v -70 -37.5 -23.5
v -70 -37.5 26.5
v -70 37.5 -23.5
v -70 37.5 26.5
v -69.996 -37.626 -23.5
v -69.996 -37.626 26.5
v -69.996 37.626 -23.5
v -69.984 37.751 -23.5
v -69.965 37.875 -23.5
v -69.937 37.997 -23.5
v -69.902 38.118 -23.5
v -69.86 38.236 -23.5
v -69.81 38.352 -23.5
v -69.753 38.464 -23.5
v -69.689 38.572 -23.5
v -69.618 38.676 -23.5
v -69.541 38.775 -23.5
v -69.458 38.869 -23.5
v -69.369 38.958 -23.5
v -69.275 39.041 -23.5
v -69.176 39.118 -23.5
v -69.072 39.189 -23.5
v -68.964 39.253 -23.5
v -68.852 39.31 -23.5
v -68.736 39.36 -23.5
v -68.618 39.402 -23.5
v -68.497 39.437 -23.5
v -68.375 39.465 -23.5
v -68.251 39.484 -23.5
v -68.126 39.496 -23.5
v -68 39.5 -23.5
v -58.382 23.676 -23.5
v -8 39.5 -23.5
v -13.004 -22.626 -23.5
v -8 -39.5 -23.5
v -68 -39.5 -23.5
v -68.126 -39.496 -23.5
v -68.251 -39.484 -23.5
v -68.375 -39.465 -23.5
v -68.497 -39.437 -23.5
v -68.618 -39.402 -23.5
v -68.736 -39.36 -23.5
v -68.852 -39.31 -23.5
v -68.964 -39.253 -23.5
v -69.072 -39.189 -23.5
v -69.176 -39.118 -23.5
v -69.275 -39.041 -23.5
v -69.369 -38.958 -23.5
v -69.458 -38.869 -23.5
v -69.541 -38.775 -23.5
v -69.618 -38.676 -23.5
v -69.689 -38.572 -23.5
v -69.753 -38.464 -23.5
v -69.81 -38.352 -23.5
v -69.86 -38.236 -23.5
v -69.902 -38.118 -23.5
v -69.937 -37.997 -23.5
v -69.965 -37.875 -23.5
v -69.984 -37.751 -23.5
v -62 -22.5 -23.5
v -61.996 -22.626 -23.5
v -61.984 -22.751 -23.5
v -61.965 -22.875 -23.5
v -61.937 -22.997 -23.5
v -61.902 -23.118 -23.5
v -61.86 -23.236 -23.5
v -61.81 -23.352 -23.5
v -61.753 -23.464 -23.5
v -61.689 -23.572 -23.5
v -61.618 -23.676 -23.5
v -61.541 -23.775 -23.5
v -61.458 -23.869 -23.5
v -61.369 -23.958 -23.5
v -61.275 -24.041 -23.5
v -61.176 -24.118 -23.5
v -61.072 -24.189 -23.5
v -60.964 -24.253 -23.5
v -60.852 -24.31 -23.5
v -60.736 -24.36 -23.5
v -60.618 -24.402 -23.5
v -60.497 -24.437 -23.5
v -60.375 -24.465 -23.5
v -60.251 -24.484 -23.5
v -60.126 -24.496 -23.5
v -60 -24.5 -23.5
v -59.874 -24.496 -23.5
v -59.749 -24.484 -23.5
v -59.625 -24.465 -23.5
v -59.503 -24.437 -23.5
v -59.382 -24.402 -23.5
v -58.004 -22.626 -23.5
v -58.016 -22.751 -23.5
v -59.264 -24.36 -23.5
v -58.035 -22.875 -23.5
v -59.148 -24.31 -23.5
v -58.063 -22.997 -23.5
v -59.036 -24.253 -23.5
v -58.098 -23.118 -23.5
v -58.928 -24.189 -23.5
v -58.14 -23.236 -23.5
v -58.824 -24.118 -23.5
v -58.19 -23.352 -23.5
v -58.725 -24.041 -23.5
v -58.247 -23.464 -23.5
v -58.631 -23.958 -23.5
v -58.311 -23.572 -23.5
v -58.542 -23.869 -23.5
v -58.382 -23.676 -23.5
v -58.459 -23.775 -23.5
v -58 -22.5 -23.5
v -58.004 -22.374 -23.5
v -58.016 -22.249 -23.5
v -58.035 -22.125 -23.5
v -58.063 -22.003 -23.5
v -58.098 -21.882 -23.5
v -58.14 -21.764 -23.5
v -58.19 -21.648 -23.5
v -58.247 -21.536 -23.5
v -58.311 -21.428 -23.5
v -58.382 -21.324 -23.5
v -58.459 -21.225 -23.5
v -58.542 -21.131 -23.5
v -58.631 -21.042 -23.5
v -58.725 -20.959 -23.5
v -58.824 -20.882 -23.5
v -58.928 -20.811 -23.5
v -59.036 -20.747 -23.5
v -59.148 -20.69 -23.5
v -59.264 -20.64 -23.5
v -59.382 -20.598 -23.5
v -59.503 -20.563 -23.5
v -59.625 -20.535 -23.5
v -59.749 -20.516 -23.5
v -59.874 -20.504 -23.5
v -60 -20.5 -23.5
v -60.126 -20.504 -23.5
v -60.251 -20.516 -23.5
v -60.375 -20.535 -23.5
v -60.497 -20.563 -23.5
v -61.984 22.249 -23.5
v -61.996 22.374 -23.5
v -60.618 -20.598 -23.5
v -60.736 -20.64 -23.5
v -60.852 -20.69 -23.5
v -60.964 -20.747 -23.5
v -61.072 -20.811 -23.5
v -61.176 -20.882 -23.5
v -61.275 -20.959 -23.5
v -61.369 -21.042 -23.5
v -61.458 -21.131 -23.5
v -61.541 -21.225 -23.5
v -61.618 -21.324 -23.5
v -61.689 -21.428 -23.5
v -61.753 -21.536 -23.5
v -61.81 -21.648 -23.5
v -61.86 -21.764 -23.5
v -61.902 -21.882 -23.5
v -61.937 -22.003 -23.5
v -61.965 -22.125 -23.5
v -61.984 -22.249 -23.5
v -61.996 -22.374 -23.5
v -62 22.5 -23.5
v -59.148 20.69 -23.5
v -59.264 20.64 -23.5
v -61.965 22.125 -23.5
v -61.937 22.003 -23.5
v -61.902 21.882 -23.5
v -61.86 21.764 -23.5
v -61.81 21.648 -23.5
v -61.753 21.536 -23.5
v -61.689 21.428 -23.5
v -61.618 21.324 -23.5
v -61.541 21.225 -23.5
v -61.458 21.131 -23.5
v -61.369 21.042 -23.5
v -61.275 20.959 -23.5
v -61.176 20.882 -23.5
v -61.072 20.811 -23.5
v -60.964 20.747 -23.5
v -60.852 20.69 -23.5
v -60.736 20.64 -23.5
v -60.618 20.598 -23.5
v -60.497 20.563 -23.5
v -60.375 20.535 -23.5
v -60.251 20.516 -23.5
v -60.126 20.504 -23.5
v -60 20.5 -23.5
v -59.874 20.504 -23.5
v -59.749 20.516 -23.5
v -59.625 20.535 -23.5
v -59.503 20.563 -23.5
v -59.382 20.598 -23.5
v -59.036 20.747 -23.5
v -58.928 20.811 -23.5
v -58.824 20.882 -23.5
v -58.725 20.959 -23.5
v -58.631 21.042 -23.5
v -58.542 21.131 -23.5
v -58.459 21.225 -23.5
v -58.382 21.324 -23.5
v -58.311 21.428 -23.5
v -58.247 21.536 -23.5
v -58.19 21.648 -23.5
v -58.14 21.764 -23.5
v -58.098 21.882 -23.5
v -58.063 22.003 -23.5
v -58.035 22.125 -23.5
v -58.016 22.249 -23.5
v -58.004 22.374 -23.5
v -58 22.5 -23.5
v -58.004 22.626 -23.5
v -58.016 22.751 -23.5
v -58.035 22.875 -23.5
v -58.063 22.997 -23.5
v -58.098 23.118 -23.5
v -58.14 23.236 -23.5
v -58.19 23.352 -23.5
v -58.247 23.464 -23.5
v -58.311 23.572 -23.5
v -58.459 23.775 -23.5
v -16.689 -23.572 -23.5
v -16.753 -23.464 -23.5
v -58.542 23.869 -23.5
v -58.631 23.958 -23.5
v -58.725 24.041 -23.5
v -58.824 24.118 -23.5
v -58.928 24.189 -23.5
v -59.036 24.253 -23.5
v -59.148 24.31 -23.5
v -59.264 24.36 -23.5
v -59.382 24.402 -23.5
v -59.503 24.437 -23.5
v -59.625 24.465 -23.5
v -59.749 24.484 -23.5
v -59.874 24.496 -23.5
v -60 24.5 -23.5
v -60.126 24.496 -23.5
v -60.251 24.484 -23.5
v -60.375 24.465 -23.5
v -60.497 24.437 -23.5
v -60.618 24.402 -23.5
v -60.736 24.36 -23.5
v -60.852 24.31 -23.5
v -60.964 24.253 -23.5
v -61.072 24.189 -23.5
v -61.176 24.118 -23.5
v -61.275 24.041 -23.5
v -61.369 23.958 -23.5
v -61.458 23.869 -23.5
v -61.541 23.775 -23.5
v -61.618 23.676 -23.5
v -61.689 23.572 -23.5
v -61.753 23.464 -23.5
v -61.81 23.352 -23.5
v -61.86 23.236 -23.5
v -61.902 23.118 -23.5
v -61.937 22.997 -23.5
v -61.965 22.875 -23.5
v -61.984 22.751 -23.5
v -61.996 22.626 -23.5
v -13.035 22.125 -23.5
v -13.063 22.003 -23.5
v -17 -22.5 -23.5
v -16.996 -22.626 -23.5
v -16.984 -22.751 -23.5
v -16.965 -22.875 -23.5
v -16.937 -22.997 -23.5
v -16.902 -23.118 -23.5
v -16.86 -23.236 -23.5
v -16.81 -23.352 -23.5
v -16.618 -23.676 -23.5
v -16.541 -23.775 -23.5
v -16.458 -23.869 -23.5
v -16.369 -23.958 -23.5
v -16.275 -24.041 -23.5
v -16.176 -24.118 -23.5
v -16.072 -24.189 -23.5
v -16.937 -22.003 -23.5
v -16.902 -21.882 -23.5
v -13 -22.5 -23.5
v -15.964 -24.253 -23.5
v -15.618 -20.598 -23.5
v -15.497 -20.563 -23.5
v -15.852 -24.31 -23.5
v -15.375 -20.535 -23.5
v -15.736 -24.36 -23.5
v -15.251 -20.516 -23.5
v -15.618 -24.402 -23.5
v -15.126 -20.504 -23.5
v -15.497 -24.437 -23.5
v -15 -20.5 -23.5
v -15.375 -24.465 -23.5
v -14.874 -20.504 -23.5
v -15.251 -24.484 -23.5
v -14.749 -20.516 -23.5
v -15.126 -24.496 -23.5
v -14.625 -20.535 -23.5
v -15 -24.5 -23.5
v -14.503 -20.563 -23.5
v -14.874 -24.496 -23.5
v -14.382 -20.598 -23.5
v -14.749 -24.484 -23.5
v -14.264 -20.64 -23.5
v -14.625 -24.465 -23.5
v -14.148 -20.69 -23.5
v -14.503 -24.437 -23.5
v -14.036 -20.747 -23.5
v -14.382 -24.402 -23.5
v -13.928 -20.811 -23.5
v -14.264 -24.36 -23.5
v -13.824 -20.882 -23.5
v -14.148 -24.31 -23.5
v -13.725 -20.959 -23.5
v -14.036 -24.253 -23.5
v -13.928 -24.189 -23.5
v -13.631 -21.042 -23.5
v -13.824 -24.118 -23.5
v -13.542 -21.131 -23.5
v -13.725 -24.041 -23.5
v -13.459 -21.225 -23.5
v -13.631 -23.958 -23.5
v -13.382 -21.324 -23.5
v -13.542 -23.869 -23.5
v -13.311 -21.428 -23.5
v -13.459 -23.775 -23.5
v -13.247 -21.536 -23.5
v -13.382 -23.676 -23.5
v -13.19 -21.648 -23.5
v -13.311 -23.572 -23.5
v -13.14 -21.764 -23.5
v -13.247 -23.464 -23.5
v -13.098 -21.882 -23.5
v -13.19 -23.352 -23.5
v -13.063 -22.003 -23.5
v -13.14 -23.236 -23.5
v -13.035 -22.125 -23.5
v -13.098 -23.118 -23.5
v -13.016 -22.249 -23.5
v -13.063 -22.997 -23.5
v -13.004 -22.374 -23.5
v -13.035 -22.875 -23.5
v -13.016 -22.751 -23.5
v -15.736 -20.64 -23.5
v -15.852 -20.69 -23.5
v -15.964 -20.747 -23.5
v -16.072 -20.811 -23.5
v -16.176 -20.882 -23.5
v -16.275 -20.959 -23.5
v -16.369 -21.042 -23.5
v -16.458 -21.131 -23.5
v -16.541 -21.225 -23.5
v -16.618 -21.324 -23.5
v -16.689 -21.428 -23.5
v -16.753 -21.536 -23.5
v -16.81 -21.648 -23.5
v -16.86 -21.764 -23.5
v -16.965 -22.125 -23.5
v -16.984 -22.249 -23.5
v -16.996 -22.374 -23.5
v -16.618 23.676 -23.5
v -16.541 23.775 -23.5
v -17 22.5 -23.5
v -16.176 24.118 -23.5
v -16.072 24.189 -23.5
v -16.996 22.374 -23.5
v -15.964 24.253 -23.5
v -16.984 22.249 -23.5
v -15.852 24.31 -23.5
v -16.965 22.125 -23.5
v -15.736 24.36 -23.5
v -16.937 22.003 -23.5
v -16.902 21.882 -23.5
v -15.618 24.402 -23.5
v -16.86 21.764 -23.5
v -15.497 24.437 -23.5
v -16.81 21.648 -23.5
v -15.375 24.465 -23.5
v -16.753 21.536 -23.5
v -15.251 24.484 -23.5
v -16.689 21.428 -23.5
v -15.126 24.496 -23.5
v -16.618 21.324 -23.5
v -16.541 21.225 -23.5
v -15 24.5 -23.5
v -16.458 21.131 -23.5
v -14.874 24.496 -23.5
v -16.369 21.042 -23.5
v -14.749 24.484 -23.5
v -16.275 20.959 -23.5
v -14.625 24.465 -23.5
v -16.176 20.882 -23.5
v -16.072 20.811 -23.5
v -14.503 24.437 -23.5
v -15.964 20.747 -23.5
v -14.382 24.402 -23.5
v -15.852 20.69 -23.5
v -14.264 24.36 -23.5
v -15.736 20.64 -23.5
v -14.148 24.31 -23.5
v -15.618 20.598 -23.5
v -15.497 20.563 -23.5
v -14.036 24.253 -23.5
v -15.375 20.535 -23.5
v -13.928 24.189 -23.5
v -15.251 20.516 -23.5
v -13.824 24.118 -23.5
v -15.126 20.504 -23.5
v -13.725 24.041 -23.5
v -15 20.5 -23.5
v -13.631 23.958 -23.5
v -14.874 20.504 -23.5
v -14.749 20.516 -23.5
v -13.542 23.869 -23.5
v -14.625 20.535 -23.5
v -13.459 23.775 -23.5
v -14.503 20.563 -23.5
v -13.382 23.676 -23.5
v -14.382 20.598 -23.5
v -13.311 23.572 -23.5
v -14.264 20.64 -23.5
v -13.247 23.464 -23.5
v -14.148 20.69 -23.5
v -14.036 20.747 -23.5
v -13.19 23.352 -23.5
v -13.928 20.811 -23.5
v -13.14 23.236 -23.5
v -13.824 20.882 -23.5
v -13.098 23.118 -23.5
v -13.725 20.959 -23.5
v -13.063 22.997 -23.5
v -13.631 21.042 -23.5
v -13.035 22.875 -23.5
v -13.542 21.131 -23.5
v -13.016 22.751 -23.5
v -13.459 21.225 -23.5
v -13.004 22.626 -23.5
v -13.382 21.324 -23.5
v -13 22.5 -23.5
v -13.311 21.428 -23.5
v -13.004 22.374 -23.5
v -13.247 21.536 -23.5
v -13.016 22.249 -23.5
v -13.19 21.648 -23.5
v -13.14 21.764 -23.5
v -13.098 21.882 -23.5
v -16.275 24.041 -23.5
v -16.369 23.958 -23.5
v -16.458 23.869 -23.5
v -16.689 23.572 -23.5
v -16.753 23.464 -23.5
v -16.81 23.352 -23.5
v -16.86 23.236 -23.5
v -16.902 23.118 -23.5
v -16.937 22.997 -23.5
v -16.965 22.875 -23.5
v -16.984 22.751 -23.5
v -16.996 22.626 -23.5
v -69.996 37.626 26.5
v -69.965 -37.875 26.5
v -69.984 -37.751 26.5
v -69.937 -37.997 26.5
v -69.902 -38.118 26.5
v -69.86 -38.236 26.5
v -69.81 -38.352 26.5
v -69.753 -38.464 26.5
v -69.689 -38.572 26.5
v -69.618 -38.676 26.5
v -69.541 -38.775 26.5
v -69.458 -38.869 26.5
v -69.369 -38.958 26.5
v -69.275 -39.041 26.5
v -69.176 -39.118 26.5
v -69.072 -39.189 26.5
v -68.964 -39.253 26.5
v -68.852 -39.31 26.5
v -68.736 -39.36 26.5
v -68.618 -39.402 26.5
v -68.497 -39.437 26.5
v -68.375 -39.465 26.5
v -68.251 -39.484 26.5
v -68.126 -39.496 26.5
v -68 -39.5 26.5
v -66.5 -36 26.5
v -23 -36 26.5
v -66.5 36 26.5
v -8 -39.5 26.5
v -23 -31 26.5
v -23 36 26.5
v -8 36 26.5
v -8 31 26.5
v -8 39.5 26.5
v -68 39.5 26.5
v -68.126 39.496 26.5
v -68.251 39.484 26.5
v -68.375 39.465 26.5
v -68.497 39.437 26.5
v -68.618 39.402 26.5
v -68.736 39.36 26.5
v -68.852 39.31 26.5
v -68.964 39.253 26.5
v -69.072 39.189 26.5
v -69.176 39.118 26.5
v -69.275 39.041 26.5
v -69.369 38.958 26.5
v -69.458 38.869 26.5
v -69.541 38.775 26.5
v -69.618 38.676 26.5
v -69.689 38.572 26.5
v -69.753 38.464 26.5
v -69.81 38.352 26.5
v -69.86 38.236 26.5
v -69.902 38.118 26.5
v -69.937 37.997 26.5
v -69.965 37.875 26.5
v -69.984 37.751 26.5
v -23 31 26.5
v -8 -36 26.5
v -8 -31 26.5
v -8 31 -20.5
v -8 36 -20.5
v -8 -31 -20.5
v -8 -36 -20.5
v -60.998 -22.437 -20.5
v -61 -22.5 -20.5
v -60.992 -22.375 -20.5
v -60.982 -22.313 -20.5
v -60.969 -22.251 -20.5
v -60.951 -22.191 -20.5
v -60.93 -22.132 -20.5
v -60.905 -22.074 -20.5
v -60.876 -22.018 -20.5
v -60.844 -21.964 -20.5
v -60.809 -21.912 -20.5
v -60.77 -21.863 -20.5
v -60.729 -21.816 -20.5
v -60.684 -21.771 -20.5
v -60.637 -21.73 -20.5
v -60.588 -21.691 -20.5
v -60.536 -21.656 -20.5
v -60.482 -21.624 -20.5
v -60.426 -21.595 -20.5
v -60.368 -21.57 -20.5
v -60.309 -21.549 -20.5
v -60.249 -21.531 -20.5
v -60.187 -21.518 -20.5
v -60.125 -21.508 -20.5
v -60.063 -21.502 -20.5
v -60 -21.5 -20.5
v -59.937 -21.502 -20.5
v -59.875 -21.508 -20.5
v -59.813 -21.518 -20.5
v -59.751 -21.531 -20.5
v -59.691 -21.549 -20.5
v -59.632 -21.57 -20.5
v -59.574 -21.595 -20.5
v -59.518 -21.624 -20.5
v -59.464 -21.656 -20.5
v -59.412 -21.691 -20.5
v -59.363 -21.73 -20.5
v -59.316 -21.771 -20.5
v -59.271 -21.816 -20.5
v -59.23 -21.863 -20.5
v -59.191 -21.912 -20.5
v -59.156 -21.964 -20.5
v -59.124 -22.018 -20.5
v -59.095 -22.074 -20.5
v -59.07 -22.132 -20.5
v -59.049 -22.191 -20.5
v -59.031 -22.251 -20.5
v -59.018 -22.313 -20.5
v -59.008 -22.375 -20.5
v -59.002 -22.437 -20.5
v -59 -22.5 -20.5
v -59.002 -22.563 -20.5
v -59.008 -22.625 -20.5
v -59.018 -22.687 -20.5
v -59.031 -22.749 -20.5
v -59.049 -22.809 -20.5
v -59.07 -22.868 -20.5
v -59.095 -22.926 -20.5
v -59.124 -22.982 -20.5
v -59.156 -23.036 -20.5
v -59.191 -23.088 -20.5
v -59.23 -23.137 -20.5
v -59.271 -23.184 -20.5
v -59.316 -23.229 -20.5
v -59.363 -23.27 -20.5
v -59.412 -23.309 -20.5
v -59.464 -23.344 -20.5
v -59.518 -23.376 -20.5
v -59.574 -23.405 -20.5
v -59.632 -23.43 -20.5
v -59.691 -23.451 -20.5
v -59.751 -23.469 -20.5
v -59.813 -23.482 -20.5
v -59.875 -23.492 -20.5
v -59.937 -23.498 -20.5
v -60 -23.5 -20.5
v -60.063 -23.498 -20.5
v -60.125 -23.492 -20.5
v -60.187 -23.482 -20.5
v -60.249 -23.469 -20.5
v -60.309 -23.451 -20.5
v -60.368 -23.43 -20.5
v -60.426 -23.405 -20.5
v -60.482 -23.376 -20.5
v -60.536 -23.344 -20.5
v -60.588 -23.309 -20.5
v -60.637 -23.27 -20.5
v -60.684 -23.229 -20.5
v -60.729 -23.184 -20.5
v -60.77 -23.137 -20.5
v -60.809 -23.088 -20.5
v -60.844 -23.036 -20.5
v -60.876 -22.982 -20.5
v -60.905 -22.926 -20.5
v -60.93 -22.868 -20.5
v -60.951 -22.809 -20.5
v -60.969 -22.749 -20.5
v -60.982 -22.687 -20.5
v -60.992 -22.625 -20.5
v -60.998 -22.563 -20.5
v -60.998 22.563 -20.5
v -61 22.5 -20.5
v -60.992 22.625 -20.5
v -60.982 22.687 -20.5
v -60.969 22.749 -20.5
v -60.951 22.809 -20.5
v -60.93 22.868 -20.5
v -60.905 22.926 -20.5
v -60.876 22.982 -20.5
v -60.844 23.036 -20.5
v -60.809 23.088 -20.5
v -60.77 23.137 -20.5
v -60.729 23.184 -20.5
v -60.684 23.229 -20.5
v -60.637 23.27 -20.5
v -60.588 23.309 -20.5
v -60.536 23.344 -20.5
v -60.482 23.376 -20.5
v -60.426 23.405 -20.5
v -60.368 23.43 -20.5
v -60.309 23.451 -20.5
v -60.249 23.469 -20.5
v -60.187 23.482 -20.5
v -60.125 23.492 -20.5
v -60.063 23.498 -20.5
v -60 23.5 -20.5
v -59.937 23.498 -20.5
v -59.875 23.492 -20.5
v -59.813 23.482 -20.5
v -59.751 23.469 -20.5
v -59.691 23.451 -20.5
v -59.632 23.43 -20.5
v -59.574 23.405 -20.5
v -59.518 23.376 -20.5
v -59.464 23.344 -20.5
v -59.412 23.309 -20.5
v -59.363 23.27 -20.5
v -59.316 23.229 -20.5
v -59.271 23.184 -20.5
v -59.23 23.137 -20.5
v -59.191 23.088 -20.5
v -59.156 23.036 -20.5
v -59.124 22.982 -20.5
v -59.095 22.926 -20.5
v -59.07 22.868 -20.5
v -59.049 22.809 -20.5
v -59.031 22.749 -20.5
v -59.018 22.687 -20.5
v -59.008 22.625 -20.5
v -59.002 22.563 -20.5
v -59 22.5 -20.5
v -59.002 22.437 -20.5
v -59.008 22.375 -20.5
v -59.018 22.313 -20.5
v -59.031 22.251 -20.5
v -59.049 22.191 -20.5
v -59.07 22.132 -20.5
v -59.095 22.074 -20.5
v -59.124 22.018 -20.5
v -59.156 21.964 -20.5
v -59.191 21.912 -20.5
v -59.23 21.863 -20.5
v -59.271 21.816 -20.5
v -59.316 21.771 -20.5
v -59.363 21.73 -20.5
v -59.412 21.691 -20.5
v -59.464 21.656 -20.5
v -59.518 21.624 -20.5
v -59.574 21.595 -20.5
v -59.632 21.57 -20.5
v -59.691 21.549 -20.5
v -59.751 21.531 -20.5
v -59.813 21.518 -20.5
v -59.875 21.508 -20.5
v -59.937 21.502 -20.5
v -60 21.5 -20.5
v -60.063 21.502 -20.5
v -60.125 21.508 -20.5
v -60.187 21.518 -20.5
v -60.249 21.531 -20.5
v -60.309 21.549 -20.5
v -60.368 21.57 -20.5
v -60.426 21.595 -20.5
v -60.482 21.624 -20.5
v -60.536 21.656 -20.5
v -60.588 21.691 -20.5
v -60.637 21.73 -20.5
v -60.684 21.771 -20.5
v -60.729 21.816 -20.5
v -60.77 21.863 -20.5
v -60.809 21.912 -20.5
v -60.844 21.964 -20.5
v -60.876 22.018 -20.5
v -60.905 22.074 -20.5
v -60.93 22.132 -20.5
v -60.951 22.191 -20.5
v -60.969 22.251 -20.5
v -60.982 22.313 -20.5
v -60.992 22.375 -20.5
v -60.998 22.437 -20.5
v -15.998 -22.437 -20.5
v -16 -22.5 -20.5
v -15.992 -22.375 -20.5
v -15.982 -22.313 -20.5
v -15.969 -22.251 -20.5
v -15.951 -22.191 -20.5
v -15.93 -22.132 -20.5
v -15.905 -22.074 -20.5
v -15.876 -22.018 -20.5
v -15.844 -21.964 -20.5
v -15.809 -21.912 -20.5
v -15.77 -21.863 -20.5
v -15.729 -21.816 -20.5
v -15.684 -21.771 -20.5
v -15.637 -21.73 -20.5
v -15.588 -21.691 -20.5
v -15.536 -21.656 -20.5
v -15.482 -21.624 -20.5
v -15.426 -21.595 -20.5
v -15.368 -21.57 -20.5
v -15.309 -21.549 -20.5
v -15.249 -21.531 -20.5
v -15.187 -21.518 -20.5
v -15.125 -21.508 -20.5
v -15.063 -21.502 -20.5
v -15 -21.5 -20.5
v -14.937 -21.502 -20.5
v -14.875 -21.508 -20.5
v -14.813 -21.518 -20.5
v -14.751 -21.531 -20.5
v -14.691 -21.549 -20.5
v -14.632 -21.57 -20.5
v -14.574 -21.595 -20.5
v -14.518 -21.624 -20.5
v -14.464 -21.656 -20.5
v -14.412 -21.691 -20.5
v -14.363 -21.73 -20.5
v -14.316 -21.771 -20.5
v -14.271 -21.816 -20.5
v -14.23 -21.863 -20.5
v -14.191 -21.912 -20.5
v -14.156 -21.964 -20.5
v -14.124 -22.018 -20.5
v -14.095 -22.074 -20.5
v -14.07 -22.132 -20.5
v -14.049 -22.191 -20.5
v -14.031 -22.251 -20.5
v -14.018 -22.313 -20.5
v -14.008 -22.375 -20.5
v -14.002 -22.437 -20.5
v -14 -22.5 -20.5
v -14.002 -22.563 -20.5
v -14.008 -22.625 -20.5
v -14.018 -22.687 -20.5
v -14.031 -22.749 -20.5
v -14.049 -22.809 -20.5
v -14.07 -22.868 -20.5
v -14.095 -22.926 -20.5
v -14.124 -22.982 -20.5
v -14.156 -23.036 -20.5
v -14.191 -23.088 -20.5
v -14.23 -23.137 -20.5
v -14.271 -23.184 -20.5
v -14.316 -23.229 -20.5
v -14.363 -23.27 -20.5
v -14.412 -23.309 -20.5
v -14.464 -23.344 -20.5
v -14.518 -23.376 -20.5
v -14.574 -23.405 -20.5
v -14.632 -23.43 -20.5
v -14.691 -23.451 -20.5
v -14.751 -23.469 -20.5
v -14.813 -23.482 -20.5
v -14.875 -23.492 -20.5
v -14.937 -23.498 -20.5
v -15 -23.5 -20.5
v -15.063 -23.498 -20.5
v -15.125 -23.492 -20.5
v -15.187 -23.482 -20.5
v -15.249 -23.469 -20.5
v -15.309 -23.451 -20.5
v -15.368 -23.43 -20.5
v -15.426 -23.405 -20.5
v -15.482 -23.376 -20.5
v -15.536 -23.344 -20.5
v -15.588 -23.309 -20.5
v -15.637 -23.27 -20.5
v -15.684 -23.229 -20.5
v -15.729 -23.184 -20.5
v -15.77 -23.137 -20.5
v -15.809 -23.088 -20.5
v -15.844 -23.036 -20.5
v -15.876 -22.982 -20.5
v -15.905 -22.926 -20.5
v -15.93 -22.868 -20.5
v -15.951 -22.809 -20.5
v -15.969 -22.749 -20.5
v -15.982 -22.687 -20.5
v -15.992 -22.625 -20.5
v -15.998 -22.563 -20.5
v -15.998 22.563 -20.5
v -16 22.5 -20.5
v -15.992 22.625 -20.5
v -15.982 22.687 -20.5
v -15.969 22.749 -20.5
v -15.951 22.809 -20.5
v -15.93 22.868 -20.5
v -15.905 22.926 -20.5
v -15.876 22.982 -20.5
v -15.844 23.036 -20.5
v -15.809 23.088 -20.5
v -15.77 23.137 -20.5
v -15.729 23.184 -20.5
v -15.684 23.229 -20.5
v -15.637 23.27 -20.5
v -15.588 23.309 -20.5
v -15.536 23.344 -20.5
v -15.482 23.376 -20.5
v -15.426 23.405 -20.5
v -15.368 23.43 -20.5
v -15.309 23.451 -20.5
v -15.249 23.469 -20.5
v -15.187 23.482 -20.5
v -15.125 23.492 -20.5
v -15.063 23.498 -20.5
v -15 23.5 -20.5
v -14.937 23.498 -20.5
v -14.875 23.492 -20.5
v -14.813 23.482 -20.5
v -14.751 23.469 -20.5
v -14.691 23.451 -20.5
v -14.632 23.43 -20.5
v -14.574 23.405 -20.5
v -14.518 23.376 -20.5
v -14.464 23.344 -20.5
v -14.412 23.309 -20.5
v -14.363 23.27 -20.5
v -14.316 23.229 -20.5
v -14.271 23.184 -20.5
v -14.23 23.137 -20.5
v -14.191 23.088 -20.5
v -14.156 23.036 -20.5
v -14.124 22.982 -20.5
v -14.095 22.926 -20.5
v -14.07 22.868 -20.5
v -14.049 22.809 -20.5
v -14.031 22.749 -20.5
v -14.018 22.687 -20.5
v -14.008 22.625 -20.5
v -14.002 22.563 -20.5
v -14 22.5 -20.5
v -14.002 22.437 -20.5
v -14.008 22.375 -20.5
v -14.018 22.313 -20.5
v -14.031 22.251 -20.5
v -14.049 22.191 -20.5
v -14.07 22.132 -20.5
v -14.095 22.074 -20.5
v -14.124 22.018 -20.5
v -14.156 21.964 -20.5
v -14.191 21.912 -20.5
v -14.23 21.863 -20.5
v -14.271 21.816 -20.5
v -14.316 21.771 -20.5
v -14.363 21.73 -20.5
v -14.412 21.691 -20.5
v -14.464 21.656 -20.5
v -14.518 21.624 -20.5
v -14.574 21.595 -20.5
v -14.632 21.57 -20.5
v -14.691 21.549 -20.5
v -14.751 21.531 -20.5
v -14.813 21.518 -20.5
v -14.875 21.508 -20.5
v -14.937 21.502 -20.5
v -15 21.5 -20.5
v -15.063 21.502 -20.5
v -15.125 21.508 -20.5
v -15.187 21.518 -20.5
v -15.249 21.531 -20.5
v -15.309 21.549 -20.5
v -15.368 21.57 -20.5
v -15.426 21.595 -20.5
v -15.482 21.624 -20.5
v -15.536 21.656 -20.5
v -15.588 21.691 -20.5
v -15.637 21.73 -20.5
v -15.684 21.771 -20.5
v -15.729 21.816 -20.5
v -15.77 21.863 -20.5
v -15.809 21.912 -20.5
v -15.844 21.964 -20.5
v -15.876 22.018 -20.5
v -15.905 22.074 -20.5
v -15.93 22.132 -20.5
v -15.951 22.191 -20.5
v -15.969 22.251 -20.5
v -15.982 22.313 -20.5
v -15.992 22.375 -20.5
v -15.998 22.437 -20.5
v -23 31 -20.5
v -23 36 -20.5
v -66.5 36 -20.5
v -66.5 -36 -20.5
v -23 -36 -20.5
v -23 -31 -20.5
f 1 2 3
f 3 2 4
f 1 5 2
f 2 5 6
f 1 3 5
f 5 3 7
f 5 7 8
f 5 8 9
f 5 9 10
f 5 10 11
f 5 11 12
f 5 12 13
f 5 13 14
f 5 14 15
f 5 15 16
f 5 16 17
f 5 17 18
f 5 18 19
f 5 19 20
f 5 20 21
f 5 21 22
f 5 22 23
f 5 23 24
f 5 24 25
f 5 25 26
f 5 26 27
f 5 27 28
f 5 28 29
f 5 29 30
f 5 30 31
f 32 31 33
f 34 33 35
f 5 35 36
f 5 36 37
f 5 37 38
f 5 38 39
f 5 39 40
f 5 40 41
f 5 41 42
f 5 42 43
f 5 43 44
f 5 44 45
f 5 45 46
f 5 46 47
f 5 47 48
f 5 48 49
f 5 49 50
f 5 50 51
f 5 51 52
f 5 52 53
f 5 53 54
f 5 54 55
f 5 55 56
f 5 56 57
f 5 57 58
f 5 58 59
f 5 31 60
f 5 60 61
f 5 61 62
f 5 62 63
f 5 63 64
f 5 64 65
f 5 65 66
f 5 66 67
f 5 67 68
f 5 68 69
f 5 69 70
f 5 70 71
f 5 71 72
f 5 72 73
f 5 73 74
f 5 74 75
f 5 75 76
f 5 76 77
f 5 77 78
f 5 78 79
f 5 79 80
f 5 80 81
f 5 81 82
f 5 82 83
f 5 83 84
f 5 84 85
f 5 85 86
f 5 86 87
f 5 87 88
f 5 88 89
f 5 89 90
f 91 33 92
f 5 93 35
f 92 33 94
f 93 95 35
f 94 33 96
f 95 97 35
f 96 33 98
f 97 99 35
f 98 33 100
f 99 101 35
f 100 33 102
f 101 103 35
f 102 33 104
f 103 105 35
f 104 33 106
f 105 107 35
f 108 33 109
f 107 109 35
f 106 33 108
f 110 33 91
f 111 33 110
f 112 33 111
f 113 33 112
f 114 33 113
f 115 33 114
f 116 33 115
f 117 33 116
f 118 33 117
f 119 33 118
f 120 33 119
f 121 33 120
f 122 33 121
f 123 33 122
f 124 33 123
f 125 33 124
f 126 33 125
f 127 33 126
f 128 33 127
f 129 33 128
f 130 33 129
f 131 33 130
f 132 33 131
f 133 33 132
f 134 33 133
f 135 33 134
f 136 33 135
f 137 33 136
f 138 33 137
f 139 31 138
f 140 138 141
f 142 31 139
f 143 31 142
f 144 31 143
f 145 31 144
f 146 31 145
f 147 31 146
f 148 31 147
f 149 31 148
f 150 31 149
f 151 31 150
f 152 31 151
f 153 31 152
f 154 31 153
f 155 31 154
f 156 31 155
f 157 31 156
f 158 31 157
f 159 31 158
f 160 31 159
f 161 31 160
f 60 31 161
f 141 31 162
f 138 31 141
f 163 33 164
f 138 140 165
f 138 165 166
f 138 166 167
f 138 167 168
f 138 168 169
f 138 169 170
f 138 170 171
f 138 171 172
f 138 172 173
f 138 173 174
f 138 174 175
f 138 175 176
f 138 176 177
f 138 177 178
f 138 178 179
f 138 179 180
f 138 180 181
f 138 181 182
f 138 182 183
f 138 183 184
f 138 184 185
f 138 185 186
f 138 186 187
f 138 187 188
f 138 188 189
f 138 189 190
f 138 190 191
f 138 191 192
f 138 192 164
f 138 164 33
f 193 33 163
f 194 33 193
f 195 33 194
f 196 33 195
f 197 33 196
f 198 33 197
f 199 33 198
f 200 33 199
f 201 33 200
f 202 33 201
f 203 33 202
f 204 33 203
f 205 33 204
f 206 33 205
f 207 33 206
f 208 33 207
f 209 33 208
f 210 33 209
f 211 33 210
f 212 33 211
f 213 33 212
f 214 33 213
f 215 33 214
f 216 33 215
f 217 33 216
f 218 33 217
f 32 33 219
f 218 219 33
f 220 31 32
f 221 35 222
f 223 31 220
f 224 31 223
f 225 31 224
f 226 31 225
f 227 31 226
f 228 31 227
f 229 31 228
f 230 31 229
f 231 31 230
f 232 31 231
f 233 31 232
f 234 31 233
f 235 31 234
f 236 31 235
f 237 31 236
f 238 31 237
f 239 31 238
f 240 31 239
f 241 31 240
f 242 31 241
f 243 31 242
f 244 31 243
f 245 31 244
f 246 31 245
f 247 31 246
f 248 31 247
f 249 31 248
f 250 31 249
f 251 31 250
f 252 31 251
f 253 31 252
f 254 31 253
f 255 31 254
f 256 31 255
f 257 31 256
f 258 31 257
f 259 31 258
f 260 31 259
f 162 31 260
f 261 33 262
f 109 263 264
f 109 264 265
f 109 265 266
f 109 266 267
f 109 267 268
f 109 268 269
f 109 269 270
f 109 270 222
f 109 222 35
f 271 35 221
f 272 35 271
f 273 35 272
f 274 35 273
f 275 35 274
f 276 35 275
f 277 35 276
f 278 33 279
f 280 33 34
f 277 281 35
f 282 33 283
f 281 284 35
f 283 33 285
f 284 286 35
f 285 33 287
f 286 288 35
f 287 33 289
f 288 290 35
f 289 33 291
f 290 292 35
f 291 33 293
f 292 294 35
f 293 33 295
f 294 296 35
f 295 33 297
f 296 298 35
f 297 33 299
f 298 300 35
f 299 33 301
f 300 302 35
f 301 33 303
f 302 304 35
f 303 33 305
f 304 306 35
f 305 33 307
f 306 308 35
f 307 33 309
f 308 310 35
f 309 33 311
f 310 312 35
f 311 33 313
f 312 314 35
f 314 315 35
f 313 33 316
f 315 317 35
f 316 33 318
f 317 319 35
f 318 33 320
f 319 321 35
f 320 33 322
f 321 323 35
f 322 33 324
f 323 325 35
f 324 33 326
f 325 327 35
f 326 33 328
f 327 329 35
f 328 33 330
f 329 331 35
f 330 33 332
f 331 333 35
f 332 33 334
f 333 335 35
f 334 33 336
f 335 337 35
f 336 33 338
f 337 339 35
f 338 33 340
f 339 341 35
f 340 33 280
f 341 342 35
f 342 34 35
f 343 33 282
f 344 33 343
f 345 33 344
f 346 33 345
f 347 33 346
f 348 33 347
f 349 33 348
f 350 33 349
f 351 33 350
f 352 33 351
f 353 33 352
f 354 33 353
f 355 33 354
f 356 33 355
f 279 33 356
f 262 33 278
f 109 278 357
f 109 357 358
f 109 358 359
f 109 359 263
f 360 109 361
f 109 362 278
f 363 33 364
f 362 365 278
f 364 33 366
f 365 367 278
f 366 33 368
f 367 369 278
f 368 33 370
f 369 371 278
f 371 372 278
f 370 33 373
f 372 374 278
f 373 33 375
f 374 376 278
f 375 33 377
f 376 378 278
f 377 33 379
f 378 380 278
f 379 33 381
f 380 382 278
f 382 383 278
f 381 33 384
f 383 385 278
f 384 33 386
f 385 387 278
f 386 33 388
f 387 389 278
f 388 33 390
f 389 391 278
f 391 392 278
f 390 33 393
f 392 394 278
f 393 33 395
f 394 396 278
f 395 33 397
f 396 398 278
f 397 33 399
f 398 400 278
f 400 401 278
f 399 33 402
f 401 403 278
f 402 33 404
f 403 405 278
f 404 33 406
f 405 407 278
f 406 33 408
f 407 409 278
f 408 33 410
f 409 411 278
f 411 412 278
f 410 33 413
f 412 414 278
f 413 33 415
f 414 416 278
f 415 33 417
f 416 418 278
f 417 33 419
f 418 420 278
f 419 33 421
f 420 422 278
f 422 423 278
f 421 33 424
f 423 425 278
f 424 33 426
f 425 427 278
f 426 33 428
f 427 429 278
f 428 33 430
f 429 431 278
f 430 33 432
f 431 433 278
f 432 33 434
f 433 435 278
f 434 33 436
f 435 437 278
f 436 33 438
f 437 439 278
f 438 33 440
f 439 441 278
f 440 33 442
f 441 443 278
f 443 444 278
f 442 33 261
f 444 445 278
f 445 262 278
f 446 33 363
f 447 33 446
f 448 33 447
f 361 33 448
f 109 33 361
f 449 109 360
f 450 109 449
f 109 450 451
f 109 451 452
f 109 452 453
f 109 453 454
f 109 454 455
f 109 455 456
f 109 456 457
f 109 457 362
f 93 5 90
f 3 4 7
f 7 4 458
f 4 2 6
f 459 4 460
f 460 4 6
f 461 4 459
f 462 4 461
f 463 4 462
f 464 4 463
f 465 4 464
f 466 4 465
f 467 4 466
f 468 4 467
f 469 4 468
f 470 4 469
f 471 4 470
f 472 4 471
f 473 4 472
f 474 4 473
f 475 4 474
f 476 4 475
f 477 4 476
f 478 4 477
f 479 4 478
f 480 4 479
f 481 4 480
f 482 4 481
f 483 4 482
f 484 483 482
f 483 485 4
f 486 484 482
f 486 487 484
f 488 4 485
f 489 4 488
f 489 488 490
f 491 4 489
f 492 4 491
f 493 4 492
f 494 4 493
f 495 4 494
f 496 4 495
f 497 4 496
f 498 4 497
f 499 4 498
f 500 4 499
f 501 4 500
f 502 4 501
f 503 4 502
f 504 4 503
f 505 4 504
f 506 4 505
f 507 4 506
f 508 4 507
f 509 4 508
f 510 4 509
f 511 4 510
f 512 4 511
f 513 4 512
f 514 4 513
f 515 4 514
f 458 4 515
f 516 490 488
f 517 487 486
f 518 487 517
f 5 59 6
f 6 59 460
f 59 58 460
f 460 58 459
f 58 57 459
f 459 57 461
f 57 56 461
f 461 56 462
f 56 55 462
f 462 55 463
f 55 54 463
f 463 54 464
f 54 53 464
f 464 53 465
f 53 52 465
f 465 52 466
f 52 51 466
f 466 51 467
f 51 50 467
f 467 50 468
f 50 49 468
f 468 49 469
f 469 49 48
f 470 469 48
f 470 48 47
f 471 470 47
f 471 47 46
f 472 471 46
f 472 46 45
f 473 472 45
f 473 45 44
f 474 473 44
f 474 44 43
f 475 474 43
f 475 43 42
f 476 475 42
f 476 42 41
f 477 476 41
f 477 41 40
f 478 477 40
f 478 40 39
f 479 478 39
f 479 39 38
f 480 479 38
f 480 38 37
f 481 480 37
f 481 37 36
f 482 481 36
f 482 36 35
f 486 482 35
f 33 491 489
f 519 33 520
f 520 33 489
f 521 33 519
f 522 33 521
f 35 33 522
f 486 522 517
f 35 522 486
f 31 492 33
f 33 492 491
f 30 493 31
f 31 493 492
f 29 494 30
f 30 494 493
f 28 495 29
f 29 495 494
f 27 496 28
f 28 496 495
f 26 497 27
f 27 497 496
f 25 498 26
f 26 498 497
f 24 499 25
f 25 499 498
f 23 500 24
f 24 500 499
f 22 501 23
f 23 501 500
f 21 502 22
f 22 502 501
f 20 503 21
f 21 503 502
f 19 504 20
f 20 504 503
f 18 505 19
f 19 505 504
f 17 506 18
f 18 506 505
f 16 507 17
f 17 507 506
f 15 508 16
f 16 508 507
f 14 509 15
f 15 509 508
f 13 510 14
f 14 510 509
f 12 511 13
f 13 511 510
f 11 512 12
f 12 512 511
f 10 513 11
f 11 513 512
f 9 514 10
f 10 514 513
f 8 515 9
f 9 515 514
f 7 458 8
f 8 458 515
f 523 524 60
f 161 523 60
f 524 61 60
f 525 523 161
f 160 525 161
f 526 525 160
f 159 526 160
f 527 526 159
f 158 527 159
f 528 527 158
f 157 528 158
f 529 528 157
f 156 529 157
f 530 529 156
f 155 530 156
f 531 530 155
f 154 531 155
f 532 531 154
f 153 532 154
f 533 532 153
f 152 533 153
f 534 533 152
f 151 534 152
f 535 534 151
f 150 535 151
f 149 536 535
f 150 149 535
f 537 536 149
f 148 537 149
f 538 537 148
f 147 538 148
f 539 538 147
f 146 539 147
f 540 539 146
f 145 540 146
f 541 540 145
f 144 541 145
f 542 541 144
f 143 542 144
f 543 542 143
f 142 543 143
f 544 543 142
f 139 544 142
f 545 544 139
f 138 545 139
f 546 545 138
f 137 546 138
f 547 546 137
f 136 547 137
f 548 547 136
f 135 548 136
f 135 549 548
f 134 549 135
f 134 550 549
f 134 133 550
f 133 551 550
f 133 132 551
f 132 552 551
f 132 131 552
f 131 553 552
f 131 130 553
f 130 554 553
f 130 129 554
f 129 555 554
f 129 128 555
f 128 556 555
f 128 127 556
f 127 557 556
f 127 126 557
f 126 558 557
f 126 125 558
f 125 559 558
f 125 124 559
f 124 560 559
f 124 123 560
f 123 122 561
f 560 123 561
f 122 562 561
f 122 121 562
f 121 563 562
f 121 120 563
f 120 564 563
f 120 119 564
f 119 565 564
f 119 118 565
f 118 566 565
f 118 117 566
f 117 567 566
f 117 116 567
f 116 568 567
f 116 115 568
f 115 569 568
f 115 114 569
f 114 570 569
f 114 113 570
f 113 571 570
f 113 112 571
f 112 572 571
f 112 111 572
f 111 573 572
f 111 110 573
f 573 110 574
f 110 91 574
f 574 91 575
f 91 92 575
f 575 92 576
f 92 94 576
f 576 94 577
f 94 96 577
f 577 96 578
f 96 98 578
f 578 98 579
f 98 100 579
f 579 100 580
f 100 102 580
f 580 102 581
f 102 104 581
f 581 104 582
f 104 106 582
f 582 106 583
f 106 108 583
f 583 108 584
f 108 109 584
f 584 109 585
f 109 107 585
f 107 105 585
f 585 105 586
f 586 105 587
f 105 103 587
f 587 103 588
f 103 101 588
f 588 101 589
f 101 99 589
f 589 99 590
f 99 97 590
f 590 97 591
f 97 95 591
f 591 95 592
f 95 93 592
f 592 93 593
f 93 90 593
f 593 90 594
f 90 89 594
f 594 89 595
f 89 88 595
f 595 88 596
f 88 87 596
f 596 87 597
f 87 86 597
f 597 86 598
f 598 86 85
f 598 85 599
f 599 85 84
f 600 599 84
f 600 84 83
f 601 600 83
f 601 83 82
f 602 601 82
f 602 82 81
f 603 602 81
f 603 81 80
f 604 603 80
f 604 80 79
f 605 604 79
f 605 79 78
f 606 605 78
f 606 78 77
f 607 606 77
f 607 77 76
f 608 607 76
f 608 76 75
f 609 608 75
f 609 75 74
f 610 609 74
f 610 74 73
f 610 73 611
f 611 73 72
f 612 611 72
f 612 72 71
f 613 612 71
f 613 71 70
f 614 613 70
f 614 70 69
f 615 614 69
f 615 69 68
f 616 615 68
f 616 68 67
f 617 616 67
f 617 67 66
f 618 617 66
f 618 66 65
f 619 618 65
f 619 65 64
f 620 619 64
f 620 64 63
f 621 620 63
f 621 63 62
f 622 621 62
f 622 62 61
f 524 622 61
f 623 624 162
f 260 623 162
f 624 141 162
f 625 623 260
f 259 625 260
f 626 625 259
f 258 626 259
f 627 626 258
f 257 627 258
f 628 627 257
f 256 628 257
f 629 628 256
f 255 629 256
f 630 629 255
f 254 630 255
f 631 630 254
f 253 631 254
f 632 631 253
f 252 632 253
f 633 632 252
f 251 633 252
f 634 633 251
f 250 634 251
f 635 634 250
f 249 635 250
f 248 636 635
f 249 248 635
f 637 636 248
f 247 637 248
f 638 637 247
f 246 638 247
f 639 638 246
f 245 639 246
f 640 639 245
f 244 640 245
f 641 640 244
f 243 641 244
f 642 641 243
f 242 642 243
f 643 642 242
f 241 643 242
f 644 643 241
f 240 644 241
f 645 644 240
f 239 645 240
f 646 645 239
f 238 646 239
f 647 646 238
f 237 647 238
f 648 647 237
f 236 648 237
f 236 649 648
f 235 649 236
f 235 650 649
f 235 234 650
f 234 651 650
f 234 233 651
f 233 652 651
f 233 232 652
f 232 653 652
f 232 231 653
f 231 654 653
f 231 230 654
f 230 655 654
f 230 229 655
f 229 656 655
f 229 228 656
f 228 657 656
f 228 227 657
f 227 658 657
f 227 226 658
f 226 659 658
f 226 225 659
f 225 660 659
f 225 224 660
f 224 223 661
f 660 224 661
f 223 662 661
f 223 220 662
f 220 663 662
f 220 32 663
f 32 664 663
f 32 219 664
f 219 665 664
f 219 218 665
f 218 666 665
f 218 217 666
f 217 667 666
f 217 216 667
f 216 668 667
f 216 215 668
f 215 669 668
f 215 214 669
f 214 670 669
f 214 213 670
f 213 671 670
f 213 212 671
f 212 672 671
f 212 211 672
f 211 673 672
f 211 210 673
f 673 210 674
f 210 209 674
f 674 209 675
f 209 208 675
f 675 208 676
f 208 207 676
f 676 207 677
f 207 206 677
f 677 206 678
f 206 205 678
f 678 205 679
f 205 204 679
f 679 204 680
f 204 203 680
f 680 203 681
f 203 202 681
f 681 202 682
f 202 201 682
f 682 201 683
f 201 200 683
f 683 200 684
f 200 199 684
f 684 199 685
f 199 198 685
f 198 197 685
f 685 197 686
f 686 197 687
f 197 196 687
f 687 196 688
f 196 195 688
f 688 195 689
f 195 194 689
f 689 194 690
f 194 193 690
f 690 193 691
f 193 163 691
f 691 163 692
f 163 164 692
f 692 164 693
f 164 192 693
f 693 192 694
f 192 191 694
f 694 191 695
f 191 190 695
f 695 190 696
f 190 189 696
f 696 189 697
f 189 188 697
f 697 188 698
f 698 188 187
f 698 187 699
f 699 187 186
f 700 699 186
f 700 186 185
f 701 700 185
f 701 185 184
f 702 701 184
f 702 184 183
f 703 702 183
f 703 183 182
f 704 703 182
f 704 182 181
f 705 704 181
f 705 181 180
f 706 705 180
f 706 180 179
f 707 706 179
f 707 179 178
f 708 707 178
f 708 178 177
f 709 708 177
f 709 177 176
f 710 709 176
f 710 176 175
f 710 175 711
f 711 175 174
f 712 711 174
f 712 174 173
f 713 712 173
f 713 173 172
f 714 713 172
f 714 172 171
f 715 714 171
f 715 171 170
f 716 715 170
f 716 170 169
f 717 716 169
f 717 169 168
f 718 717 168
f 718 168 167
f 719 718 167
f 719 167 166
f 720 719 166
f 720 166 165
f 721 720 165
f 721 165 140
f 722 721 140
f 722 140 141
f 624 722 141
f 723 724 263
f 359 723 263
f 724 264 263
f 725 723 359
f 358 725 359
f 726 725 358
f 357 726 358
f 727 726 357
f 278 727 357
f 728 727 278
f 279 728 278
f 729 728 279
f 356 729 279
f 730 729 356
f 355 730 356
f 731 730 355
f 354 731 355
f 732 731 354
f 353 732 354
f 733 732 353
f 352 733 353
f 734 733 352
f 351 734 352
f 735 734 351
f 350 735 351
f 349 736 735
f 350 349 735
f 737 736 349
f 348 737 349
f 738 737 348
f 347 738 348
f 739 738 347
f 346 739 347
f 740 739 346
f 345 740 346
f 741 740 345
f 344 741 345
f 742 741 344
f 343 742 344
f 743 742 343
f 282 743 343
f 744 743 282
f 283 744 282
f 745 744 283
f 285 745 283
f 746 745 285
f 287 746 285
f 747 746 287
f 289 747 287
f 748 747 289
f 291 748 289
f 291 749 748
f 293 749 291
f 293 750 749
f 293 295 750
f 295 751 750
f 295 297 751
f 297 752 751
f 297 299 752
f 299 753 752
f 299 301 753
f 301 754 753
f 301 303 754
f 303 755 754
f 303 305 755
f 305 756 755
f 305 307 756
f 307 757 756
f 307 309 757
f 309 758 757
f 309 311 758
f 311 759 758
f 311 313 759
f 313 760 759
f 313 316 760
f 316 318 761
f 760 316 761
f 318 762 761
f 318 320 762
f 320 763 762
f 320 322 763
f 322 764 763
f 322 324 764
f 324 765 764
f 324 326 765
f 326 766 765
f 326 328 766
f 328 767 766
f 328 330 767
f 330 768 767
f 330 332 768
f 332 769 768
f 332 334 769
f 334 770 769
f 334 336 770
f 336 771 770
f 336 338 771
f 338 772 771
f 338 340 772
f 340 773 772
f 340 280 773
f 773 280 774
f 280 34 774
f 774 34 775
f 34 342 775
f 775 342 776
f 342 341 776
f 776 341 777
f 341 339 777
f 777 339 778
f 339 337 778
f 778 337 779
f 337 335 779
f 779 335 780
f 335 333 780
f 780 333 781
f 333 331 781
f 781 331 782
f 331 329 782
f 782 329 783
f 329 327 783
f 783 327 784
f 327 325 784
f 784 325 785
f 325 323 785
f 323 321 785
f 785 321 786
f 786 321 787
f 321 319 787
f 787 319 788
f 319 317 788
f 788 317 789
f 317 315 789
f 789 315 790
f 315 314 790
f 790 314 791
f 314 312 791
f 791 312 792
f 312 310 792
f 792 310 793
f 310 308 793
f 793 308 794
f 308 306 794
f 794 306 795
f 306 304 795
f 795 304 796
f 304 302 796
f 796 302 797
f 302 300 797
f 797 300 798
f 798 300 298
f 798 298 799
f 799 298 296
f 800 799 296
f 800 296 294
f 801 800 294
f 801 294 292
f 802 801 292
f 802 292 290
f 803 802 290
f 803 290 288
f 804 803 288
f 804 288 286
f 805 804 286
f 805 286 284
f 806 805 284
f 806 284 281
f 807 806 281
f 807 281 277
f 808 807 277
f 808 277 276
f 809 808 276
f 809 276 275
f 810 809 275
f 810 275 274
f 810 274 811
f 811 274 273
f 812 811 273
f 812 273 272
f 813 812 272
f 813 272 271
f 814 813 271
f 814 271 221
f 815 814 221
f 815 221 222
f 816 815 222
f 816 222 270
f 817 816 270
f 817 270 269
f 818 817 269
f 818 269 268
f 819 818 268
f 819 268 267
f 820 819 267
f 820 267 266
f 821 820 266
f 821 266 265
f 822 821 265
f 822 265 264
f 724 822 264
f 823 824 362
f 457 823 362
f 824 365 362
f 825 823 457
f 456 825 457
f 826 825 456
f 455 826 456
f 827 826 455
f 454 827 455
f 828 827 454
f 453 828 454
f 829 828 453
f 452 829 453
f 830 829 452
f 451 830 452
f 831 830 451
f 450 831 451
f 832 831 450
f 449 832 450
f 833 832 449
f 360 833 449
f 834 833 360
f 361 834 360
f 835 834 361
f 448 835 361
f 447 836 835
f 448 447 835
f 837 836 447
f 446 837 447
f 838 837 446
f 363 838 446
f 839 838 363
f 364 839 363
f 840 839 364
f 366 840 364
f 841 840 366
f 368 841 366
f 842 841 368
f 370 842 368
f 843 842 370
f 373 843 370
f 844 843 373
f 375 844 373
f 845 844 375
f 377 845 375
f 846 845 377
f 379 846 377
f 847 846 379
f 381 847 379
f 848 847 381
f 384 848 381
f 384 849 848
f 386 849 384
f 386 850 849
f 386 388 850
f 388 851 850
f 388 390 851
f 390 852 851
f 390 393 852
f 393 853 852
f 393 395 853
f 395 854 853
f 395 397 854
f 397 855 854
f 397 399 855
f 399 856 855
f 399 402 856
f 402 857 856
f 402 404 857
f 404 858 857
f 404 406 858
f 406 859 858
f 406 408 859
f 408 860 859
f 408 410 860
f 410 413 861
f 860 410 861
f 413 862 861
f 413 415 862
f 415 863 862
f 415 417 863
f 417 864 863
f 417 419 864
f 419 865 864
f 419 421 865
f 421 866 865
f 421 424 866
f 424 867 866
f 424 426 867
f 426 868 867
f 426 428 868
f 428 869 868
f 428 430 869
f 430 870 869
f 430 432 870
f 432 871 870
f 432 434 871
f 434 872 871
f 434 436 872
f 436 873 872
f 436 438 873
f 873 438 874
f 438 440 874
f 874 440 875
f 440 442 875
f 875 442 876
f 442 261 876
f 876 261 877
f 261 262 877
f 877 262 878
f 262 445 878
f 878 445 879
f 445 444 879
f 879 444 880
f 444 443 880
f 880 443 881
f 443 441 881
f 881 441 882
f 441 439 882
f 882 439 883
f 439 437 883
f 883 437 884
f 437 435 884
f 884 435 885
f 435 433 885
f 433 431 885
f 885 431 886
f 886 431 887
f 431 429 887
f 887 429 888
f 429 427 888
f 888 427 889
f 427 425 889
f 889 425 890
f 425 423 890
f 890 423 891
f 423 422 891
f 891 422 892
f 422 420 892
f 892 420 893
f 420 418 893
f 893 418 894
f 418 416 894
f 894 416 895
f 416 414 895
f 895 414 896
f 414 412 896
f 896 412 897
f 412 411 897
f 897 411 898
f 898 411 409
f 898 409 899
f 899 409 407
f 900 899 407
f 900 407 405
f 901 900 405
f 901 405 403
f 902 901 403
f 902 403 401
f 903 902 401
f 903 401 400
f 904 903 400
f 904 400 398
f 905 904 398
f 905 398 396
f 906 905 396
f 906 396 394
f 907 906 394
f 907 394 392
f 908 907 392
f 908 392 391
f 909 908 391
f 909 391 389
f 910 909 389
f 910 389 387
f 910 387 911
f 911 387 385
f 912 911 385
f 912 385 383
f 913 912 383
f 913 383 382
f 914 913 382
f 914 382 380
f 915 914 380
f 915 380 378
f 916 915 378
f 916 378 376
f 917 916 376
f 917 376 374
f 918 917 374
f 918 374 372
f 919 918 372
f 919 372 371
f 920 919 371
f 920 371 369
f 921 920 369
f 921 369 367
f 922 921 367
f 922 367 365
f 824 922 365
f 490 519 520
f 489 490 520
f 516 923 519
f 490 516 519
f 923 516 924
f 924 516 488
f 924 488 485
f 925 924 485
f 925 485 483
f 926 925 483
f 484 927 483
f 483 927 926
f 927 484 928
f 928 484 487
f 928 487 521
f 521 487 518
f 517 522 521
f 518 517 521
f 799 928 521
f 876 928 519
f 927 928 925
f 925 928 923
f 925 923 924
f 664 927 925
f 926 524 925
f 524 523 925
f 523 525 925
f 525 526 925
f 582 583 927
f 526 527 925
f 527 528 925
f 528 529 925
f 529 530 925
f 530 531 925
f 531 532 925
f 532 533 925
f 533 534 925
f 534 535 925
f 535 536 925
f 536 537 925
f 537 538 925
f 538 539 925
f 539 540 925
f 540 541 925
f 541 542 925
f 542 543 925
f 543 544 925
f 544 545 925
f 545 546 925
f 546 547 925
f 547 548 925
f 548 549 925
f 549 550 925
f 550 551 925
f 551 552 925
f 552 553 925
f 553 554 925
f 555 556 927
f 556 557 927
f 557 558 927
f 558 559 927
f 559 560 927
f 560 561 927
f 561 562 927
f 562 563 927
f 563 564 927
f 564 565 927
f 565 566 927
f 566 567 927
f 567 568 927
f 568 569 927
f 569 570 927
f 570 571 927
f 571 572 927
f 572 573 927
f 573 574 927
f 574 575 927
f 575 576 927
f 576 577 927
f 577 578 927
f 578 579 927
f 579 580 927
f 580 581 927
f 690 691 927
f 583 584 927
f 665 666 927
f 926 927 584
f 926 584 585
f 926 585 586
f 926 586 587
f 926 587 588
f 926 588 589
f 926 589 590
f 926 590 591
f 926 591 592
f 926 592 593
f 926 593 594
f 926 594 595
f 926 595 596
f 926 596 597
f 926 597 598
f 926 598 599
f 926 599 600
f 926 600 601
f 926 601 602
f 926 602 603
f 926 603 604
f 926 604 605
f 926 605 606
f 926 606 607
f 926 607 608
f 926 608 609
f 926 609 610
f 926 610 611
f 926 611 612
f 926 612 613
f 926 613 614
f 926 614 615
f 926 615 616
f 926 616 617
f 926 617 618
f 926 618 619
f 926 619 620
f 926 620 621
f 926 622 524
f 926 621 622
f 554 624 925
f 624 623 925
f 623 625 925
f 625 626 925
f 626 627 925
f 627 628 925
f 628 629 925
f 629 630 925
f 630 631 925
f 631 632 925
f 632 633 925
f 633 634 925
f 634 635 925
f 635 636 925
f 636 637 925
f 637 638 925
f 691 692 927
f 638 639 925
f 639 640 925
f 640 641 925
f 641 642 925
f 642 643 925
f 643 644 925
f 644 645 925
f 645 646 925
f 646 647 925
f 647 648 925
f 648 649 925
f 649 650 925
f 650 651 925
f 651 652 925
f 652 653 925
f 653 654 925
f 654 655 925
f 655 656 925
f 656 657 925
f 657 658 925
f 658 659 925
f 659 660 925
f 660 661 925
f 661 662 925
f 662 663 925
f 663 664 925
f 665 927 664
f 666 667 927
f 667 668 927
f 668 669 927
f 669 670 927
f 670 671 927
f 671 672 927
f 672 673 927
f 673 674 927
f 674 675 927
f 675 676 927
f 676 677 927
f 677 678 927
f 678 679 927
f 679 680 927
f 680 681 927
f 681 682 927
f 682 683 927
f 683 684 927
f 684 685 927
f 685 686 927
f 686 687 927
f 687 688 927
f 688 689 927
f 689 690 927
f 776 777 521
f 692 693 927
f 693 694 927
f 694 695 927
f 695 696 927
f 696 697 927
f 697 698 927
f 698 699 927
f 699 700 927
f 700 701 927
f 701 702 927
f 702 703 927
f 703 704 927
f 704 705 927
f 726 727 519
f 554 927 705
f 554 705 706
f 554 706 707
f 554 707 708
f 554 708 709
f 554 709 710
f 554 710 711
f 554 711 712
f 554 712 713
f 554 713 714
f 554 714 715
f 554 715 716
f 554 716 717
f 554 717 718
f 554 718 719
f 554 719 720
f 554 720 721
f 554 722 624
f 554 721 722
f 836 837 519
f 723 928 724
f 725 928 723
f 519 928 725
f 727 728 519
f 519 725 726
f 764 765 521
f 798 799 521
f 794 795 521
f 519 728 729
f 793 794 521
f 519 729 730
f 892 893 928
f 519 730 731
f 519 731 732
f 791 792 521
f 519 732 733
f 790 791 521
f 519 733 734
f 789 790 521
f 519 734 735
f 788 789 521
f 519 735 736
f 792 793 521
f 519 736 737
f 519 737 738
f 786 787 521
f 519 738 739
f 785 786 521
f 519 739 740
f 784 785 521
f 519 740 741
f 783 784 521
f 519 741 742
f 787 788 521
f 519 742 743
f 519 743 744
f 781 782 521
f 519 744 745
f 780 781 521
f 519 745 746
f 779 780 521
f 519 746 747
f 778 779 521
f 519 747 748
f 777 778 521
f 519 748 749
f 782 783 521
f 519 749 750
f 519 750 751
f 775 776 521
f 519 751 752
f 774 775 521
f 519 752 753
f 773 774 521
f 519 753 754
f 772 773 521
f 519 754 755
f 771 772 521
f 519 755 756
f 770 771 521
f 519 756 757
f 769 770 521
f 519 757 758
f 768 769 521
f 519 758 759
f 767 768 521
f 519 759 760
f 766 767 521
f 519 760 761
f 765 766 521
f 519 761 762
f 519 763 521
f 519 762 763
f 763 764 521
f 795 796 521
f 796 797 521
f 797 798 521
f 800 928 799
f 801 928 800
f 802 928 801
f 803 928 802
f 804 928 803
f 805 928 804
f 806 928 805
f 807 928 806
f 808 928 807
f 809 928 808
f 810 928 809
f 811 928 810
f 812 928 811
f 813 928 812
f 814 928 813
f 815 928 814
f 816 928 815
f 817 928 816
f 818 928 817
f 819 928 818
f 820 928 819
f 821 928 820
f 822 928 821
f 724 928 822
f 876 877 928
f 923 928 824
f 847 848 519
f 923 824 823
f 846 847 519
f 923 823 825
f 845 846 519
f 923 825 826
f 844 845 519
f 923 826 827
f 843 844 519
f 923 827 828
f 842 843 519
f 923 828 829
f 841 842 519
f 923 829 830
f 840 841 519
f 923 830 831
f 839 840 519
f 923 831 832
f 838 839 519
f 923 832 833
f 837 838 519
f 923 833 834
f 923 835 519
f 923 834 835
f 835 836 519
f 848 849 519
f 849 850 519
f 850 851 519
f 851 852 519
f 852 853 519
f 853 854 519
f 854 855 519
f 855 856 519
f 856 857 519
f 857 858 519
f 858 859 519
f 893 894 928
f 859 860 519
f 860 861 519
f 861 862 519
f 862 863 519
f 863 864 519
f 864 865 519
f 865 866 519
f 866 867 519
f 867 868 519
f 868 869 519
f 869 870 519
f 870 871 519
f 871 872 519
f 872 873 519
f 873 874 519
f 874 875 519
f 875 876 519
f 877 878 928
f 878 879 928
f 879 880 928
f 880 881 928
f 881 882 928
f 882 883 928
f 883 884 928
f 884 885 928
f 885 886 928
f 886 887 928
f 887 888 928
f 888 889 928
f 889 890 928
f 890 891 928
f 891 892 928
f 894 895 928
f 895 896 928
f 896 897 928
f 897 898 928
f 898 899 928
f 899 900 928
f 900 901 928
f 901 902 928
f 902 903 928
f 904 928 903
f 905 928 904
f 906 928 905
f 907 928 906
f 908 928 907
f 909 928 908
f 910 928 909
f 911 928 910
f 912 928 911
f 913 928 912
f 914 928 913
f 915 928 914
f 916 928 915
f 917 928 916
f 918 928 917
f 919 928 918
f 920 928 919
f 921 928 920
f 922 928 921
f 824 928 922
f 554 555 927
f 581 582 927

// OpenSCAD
/* general variables */
	fn = 100;				//number of polygons used to approximate a curve
	io = 1;					//scale to whatever an iota or smidge is on your numeric scale
	cc = 5;					//correction factor to ensure that joins of orthogonal cylinders work as intended

	/* cuvette holder dimensions */
	bsw = 45;				//width between screw holes
	chxf = 2;				//division factor for x-coord of cuvette holder's position relative to center of case

	/* mounting screw/bolt dimensions */
	shw = 2;				//screw head radius
	ssw = 1;				//screw shaft radius
	ssh = 12;				//screw shaft height

	/* case wall */
	ww0 = 75;				//base width before minkowski (edge-rounding)
	wd0 = 136;				//base depth before minkowski (edge-rounding)
	mnk = 2;				//minkowski radius (for corner-rounding)
	ww = ww0 + mnk;		//effective width of cuvette holder
	wh = 47;				//base height
	wt = 3;					//wall thickness
	bt = 3;					//base thickness
	bhw = 2;				//base hole width
	cutx = 8;				//distance from origin for cutting (yz) plane to separate front and back case halves
	butw = 15;				//width of buttress to reinforce case-half walls
	butd = 5;				//depth of buttress to reinforce case-half walls

	/* arduino dimensions */ 
		/*NB: aruino screwholes are numbered clockwise around the board, 
		looking at it from above and taking the barrel port as 12 o'clock. 
		X and Y coords are measured relative to the board corner nearest the barrel port,
		with the X-axis aligned with the ATMega chip, to match the axes in the case bottom SCAD file*/
	aush1y = 51;			//X-coord of 1st screwhole on the arduino uno r3 board (see above)
	aush1x = 15;			//Y-coord of 1st screwhole on the arduino uno r3 board (see above)
	aush2y = 36;			//....
	aush2x = 67;
	aush3y = 8;
	aush3x = 66;
	aush4y = 2;
	aush4x = 14;
	auby = 54;				//width of arduino uno board
	aubx = 69;				//length of arduino uno board

module screwhole() {cylinder(r1 = shw, r2=ssw, h=bt, center=false, $fn=fn);}

module case_bottom()
{
	/* construction code */
	union(){
		difference(){
			minkowski(){cube([wd0,ww0,wh], center=true);cylinder(r=mnk,h=wt, $fn=fn);}
			translate([0,0,bt])	cube([wd0-wt, ww0-wt, wh], center=true);
			
			translate([-ww0/chxf -bsw/2, -bsw/2,-wh/2]) screwhole();
			translate([-ww0/chxf +bsw/2, -bsw/2,-wh/2]) screwhole();
			translate([-ww0/chxf -bsw/2, +bsw/2,-wh/2]) screwhole();
			translate([-ww0/chxf +bsw/2, +bsw/2,-wh/2]) screwhole();
			translate([wd0/2-wt-aush1x, auby/2-aush1y, -bsw/2]) screwhole();
			translate([wd0/2-wt-aush2x, auby/2-aush2y, -bsw/2]) screwhole();
			translate([wd0/2-wt-aush3x, auby/2-aush3y, -bsw/2]) screwhole();
			translate([wd0/2-wt-aush4x, auby/2-aush4y, -bsw/2]) screwhole();
	
			translate([-cutx,-ww0,-wh/2])		cube([wd0,wd0,wd0], center=false);
		}
		translate([-cutx-butw/2,-ww0/2+wt+mnk/2,bt])	cube([butw,butd,wh], center=true);
		translate([-cutx-butw/2,ww0/2-wt-mnk/2,bt])		cube([butw,butd,wh], center=true);
	}
}

case_bottom();
